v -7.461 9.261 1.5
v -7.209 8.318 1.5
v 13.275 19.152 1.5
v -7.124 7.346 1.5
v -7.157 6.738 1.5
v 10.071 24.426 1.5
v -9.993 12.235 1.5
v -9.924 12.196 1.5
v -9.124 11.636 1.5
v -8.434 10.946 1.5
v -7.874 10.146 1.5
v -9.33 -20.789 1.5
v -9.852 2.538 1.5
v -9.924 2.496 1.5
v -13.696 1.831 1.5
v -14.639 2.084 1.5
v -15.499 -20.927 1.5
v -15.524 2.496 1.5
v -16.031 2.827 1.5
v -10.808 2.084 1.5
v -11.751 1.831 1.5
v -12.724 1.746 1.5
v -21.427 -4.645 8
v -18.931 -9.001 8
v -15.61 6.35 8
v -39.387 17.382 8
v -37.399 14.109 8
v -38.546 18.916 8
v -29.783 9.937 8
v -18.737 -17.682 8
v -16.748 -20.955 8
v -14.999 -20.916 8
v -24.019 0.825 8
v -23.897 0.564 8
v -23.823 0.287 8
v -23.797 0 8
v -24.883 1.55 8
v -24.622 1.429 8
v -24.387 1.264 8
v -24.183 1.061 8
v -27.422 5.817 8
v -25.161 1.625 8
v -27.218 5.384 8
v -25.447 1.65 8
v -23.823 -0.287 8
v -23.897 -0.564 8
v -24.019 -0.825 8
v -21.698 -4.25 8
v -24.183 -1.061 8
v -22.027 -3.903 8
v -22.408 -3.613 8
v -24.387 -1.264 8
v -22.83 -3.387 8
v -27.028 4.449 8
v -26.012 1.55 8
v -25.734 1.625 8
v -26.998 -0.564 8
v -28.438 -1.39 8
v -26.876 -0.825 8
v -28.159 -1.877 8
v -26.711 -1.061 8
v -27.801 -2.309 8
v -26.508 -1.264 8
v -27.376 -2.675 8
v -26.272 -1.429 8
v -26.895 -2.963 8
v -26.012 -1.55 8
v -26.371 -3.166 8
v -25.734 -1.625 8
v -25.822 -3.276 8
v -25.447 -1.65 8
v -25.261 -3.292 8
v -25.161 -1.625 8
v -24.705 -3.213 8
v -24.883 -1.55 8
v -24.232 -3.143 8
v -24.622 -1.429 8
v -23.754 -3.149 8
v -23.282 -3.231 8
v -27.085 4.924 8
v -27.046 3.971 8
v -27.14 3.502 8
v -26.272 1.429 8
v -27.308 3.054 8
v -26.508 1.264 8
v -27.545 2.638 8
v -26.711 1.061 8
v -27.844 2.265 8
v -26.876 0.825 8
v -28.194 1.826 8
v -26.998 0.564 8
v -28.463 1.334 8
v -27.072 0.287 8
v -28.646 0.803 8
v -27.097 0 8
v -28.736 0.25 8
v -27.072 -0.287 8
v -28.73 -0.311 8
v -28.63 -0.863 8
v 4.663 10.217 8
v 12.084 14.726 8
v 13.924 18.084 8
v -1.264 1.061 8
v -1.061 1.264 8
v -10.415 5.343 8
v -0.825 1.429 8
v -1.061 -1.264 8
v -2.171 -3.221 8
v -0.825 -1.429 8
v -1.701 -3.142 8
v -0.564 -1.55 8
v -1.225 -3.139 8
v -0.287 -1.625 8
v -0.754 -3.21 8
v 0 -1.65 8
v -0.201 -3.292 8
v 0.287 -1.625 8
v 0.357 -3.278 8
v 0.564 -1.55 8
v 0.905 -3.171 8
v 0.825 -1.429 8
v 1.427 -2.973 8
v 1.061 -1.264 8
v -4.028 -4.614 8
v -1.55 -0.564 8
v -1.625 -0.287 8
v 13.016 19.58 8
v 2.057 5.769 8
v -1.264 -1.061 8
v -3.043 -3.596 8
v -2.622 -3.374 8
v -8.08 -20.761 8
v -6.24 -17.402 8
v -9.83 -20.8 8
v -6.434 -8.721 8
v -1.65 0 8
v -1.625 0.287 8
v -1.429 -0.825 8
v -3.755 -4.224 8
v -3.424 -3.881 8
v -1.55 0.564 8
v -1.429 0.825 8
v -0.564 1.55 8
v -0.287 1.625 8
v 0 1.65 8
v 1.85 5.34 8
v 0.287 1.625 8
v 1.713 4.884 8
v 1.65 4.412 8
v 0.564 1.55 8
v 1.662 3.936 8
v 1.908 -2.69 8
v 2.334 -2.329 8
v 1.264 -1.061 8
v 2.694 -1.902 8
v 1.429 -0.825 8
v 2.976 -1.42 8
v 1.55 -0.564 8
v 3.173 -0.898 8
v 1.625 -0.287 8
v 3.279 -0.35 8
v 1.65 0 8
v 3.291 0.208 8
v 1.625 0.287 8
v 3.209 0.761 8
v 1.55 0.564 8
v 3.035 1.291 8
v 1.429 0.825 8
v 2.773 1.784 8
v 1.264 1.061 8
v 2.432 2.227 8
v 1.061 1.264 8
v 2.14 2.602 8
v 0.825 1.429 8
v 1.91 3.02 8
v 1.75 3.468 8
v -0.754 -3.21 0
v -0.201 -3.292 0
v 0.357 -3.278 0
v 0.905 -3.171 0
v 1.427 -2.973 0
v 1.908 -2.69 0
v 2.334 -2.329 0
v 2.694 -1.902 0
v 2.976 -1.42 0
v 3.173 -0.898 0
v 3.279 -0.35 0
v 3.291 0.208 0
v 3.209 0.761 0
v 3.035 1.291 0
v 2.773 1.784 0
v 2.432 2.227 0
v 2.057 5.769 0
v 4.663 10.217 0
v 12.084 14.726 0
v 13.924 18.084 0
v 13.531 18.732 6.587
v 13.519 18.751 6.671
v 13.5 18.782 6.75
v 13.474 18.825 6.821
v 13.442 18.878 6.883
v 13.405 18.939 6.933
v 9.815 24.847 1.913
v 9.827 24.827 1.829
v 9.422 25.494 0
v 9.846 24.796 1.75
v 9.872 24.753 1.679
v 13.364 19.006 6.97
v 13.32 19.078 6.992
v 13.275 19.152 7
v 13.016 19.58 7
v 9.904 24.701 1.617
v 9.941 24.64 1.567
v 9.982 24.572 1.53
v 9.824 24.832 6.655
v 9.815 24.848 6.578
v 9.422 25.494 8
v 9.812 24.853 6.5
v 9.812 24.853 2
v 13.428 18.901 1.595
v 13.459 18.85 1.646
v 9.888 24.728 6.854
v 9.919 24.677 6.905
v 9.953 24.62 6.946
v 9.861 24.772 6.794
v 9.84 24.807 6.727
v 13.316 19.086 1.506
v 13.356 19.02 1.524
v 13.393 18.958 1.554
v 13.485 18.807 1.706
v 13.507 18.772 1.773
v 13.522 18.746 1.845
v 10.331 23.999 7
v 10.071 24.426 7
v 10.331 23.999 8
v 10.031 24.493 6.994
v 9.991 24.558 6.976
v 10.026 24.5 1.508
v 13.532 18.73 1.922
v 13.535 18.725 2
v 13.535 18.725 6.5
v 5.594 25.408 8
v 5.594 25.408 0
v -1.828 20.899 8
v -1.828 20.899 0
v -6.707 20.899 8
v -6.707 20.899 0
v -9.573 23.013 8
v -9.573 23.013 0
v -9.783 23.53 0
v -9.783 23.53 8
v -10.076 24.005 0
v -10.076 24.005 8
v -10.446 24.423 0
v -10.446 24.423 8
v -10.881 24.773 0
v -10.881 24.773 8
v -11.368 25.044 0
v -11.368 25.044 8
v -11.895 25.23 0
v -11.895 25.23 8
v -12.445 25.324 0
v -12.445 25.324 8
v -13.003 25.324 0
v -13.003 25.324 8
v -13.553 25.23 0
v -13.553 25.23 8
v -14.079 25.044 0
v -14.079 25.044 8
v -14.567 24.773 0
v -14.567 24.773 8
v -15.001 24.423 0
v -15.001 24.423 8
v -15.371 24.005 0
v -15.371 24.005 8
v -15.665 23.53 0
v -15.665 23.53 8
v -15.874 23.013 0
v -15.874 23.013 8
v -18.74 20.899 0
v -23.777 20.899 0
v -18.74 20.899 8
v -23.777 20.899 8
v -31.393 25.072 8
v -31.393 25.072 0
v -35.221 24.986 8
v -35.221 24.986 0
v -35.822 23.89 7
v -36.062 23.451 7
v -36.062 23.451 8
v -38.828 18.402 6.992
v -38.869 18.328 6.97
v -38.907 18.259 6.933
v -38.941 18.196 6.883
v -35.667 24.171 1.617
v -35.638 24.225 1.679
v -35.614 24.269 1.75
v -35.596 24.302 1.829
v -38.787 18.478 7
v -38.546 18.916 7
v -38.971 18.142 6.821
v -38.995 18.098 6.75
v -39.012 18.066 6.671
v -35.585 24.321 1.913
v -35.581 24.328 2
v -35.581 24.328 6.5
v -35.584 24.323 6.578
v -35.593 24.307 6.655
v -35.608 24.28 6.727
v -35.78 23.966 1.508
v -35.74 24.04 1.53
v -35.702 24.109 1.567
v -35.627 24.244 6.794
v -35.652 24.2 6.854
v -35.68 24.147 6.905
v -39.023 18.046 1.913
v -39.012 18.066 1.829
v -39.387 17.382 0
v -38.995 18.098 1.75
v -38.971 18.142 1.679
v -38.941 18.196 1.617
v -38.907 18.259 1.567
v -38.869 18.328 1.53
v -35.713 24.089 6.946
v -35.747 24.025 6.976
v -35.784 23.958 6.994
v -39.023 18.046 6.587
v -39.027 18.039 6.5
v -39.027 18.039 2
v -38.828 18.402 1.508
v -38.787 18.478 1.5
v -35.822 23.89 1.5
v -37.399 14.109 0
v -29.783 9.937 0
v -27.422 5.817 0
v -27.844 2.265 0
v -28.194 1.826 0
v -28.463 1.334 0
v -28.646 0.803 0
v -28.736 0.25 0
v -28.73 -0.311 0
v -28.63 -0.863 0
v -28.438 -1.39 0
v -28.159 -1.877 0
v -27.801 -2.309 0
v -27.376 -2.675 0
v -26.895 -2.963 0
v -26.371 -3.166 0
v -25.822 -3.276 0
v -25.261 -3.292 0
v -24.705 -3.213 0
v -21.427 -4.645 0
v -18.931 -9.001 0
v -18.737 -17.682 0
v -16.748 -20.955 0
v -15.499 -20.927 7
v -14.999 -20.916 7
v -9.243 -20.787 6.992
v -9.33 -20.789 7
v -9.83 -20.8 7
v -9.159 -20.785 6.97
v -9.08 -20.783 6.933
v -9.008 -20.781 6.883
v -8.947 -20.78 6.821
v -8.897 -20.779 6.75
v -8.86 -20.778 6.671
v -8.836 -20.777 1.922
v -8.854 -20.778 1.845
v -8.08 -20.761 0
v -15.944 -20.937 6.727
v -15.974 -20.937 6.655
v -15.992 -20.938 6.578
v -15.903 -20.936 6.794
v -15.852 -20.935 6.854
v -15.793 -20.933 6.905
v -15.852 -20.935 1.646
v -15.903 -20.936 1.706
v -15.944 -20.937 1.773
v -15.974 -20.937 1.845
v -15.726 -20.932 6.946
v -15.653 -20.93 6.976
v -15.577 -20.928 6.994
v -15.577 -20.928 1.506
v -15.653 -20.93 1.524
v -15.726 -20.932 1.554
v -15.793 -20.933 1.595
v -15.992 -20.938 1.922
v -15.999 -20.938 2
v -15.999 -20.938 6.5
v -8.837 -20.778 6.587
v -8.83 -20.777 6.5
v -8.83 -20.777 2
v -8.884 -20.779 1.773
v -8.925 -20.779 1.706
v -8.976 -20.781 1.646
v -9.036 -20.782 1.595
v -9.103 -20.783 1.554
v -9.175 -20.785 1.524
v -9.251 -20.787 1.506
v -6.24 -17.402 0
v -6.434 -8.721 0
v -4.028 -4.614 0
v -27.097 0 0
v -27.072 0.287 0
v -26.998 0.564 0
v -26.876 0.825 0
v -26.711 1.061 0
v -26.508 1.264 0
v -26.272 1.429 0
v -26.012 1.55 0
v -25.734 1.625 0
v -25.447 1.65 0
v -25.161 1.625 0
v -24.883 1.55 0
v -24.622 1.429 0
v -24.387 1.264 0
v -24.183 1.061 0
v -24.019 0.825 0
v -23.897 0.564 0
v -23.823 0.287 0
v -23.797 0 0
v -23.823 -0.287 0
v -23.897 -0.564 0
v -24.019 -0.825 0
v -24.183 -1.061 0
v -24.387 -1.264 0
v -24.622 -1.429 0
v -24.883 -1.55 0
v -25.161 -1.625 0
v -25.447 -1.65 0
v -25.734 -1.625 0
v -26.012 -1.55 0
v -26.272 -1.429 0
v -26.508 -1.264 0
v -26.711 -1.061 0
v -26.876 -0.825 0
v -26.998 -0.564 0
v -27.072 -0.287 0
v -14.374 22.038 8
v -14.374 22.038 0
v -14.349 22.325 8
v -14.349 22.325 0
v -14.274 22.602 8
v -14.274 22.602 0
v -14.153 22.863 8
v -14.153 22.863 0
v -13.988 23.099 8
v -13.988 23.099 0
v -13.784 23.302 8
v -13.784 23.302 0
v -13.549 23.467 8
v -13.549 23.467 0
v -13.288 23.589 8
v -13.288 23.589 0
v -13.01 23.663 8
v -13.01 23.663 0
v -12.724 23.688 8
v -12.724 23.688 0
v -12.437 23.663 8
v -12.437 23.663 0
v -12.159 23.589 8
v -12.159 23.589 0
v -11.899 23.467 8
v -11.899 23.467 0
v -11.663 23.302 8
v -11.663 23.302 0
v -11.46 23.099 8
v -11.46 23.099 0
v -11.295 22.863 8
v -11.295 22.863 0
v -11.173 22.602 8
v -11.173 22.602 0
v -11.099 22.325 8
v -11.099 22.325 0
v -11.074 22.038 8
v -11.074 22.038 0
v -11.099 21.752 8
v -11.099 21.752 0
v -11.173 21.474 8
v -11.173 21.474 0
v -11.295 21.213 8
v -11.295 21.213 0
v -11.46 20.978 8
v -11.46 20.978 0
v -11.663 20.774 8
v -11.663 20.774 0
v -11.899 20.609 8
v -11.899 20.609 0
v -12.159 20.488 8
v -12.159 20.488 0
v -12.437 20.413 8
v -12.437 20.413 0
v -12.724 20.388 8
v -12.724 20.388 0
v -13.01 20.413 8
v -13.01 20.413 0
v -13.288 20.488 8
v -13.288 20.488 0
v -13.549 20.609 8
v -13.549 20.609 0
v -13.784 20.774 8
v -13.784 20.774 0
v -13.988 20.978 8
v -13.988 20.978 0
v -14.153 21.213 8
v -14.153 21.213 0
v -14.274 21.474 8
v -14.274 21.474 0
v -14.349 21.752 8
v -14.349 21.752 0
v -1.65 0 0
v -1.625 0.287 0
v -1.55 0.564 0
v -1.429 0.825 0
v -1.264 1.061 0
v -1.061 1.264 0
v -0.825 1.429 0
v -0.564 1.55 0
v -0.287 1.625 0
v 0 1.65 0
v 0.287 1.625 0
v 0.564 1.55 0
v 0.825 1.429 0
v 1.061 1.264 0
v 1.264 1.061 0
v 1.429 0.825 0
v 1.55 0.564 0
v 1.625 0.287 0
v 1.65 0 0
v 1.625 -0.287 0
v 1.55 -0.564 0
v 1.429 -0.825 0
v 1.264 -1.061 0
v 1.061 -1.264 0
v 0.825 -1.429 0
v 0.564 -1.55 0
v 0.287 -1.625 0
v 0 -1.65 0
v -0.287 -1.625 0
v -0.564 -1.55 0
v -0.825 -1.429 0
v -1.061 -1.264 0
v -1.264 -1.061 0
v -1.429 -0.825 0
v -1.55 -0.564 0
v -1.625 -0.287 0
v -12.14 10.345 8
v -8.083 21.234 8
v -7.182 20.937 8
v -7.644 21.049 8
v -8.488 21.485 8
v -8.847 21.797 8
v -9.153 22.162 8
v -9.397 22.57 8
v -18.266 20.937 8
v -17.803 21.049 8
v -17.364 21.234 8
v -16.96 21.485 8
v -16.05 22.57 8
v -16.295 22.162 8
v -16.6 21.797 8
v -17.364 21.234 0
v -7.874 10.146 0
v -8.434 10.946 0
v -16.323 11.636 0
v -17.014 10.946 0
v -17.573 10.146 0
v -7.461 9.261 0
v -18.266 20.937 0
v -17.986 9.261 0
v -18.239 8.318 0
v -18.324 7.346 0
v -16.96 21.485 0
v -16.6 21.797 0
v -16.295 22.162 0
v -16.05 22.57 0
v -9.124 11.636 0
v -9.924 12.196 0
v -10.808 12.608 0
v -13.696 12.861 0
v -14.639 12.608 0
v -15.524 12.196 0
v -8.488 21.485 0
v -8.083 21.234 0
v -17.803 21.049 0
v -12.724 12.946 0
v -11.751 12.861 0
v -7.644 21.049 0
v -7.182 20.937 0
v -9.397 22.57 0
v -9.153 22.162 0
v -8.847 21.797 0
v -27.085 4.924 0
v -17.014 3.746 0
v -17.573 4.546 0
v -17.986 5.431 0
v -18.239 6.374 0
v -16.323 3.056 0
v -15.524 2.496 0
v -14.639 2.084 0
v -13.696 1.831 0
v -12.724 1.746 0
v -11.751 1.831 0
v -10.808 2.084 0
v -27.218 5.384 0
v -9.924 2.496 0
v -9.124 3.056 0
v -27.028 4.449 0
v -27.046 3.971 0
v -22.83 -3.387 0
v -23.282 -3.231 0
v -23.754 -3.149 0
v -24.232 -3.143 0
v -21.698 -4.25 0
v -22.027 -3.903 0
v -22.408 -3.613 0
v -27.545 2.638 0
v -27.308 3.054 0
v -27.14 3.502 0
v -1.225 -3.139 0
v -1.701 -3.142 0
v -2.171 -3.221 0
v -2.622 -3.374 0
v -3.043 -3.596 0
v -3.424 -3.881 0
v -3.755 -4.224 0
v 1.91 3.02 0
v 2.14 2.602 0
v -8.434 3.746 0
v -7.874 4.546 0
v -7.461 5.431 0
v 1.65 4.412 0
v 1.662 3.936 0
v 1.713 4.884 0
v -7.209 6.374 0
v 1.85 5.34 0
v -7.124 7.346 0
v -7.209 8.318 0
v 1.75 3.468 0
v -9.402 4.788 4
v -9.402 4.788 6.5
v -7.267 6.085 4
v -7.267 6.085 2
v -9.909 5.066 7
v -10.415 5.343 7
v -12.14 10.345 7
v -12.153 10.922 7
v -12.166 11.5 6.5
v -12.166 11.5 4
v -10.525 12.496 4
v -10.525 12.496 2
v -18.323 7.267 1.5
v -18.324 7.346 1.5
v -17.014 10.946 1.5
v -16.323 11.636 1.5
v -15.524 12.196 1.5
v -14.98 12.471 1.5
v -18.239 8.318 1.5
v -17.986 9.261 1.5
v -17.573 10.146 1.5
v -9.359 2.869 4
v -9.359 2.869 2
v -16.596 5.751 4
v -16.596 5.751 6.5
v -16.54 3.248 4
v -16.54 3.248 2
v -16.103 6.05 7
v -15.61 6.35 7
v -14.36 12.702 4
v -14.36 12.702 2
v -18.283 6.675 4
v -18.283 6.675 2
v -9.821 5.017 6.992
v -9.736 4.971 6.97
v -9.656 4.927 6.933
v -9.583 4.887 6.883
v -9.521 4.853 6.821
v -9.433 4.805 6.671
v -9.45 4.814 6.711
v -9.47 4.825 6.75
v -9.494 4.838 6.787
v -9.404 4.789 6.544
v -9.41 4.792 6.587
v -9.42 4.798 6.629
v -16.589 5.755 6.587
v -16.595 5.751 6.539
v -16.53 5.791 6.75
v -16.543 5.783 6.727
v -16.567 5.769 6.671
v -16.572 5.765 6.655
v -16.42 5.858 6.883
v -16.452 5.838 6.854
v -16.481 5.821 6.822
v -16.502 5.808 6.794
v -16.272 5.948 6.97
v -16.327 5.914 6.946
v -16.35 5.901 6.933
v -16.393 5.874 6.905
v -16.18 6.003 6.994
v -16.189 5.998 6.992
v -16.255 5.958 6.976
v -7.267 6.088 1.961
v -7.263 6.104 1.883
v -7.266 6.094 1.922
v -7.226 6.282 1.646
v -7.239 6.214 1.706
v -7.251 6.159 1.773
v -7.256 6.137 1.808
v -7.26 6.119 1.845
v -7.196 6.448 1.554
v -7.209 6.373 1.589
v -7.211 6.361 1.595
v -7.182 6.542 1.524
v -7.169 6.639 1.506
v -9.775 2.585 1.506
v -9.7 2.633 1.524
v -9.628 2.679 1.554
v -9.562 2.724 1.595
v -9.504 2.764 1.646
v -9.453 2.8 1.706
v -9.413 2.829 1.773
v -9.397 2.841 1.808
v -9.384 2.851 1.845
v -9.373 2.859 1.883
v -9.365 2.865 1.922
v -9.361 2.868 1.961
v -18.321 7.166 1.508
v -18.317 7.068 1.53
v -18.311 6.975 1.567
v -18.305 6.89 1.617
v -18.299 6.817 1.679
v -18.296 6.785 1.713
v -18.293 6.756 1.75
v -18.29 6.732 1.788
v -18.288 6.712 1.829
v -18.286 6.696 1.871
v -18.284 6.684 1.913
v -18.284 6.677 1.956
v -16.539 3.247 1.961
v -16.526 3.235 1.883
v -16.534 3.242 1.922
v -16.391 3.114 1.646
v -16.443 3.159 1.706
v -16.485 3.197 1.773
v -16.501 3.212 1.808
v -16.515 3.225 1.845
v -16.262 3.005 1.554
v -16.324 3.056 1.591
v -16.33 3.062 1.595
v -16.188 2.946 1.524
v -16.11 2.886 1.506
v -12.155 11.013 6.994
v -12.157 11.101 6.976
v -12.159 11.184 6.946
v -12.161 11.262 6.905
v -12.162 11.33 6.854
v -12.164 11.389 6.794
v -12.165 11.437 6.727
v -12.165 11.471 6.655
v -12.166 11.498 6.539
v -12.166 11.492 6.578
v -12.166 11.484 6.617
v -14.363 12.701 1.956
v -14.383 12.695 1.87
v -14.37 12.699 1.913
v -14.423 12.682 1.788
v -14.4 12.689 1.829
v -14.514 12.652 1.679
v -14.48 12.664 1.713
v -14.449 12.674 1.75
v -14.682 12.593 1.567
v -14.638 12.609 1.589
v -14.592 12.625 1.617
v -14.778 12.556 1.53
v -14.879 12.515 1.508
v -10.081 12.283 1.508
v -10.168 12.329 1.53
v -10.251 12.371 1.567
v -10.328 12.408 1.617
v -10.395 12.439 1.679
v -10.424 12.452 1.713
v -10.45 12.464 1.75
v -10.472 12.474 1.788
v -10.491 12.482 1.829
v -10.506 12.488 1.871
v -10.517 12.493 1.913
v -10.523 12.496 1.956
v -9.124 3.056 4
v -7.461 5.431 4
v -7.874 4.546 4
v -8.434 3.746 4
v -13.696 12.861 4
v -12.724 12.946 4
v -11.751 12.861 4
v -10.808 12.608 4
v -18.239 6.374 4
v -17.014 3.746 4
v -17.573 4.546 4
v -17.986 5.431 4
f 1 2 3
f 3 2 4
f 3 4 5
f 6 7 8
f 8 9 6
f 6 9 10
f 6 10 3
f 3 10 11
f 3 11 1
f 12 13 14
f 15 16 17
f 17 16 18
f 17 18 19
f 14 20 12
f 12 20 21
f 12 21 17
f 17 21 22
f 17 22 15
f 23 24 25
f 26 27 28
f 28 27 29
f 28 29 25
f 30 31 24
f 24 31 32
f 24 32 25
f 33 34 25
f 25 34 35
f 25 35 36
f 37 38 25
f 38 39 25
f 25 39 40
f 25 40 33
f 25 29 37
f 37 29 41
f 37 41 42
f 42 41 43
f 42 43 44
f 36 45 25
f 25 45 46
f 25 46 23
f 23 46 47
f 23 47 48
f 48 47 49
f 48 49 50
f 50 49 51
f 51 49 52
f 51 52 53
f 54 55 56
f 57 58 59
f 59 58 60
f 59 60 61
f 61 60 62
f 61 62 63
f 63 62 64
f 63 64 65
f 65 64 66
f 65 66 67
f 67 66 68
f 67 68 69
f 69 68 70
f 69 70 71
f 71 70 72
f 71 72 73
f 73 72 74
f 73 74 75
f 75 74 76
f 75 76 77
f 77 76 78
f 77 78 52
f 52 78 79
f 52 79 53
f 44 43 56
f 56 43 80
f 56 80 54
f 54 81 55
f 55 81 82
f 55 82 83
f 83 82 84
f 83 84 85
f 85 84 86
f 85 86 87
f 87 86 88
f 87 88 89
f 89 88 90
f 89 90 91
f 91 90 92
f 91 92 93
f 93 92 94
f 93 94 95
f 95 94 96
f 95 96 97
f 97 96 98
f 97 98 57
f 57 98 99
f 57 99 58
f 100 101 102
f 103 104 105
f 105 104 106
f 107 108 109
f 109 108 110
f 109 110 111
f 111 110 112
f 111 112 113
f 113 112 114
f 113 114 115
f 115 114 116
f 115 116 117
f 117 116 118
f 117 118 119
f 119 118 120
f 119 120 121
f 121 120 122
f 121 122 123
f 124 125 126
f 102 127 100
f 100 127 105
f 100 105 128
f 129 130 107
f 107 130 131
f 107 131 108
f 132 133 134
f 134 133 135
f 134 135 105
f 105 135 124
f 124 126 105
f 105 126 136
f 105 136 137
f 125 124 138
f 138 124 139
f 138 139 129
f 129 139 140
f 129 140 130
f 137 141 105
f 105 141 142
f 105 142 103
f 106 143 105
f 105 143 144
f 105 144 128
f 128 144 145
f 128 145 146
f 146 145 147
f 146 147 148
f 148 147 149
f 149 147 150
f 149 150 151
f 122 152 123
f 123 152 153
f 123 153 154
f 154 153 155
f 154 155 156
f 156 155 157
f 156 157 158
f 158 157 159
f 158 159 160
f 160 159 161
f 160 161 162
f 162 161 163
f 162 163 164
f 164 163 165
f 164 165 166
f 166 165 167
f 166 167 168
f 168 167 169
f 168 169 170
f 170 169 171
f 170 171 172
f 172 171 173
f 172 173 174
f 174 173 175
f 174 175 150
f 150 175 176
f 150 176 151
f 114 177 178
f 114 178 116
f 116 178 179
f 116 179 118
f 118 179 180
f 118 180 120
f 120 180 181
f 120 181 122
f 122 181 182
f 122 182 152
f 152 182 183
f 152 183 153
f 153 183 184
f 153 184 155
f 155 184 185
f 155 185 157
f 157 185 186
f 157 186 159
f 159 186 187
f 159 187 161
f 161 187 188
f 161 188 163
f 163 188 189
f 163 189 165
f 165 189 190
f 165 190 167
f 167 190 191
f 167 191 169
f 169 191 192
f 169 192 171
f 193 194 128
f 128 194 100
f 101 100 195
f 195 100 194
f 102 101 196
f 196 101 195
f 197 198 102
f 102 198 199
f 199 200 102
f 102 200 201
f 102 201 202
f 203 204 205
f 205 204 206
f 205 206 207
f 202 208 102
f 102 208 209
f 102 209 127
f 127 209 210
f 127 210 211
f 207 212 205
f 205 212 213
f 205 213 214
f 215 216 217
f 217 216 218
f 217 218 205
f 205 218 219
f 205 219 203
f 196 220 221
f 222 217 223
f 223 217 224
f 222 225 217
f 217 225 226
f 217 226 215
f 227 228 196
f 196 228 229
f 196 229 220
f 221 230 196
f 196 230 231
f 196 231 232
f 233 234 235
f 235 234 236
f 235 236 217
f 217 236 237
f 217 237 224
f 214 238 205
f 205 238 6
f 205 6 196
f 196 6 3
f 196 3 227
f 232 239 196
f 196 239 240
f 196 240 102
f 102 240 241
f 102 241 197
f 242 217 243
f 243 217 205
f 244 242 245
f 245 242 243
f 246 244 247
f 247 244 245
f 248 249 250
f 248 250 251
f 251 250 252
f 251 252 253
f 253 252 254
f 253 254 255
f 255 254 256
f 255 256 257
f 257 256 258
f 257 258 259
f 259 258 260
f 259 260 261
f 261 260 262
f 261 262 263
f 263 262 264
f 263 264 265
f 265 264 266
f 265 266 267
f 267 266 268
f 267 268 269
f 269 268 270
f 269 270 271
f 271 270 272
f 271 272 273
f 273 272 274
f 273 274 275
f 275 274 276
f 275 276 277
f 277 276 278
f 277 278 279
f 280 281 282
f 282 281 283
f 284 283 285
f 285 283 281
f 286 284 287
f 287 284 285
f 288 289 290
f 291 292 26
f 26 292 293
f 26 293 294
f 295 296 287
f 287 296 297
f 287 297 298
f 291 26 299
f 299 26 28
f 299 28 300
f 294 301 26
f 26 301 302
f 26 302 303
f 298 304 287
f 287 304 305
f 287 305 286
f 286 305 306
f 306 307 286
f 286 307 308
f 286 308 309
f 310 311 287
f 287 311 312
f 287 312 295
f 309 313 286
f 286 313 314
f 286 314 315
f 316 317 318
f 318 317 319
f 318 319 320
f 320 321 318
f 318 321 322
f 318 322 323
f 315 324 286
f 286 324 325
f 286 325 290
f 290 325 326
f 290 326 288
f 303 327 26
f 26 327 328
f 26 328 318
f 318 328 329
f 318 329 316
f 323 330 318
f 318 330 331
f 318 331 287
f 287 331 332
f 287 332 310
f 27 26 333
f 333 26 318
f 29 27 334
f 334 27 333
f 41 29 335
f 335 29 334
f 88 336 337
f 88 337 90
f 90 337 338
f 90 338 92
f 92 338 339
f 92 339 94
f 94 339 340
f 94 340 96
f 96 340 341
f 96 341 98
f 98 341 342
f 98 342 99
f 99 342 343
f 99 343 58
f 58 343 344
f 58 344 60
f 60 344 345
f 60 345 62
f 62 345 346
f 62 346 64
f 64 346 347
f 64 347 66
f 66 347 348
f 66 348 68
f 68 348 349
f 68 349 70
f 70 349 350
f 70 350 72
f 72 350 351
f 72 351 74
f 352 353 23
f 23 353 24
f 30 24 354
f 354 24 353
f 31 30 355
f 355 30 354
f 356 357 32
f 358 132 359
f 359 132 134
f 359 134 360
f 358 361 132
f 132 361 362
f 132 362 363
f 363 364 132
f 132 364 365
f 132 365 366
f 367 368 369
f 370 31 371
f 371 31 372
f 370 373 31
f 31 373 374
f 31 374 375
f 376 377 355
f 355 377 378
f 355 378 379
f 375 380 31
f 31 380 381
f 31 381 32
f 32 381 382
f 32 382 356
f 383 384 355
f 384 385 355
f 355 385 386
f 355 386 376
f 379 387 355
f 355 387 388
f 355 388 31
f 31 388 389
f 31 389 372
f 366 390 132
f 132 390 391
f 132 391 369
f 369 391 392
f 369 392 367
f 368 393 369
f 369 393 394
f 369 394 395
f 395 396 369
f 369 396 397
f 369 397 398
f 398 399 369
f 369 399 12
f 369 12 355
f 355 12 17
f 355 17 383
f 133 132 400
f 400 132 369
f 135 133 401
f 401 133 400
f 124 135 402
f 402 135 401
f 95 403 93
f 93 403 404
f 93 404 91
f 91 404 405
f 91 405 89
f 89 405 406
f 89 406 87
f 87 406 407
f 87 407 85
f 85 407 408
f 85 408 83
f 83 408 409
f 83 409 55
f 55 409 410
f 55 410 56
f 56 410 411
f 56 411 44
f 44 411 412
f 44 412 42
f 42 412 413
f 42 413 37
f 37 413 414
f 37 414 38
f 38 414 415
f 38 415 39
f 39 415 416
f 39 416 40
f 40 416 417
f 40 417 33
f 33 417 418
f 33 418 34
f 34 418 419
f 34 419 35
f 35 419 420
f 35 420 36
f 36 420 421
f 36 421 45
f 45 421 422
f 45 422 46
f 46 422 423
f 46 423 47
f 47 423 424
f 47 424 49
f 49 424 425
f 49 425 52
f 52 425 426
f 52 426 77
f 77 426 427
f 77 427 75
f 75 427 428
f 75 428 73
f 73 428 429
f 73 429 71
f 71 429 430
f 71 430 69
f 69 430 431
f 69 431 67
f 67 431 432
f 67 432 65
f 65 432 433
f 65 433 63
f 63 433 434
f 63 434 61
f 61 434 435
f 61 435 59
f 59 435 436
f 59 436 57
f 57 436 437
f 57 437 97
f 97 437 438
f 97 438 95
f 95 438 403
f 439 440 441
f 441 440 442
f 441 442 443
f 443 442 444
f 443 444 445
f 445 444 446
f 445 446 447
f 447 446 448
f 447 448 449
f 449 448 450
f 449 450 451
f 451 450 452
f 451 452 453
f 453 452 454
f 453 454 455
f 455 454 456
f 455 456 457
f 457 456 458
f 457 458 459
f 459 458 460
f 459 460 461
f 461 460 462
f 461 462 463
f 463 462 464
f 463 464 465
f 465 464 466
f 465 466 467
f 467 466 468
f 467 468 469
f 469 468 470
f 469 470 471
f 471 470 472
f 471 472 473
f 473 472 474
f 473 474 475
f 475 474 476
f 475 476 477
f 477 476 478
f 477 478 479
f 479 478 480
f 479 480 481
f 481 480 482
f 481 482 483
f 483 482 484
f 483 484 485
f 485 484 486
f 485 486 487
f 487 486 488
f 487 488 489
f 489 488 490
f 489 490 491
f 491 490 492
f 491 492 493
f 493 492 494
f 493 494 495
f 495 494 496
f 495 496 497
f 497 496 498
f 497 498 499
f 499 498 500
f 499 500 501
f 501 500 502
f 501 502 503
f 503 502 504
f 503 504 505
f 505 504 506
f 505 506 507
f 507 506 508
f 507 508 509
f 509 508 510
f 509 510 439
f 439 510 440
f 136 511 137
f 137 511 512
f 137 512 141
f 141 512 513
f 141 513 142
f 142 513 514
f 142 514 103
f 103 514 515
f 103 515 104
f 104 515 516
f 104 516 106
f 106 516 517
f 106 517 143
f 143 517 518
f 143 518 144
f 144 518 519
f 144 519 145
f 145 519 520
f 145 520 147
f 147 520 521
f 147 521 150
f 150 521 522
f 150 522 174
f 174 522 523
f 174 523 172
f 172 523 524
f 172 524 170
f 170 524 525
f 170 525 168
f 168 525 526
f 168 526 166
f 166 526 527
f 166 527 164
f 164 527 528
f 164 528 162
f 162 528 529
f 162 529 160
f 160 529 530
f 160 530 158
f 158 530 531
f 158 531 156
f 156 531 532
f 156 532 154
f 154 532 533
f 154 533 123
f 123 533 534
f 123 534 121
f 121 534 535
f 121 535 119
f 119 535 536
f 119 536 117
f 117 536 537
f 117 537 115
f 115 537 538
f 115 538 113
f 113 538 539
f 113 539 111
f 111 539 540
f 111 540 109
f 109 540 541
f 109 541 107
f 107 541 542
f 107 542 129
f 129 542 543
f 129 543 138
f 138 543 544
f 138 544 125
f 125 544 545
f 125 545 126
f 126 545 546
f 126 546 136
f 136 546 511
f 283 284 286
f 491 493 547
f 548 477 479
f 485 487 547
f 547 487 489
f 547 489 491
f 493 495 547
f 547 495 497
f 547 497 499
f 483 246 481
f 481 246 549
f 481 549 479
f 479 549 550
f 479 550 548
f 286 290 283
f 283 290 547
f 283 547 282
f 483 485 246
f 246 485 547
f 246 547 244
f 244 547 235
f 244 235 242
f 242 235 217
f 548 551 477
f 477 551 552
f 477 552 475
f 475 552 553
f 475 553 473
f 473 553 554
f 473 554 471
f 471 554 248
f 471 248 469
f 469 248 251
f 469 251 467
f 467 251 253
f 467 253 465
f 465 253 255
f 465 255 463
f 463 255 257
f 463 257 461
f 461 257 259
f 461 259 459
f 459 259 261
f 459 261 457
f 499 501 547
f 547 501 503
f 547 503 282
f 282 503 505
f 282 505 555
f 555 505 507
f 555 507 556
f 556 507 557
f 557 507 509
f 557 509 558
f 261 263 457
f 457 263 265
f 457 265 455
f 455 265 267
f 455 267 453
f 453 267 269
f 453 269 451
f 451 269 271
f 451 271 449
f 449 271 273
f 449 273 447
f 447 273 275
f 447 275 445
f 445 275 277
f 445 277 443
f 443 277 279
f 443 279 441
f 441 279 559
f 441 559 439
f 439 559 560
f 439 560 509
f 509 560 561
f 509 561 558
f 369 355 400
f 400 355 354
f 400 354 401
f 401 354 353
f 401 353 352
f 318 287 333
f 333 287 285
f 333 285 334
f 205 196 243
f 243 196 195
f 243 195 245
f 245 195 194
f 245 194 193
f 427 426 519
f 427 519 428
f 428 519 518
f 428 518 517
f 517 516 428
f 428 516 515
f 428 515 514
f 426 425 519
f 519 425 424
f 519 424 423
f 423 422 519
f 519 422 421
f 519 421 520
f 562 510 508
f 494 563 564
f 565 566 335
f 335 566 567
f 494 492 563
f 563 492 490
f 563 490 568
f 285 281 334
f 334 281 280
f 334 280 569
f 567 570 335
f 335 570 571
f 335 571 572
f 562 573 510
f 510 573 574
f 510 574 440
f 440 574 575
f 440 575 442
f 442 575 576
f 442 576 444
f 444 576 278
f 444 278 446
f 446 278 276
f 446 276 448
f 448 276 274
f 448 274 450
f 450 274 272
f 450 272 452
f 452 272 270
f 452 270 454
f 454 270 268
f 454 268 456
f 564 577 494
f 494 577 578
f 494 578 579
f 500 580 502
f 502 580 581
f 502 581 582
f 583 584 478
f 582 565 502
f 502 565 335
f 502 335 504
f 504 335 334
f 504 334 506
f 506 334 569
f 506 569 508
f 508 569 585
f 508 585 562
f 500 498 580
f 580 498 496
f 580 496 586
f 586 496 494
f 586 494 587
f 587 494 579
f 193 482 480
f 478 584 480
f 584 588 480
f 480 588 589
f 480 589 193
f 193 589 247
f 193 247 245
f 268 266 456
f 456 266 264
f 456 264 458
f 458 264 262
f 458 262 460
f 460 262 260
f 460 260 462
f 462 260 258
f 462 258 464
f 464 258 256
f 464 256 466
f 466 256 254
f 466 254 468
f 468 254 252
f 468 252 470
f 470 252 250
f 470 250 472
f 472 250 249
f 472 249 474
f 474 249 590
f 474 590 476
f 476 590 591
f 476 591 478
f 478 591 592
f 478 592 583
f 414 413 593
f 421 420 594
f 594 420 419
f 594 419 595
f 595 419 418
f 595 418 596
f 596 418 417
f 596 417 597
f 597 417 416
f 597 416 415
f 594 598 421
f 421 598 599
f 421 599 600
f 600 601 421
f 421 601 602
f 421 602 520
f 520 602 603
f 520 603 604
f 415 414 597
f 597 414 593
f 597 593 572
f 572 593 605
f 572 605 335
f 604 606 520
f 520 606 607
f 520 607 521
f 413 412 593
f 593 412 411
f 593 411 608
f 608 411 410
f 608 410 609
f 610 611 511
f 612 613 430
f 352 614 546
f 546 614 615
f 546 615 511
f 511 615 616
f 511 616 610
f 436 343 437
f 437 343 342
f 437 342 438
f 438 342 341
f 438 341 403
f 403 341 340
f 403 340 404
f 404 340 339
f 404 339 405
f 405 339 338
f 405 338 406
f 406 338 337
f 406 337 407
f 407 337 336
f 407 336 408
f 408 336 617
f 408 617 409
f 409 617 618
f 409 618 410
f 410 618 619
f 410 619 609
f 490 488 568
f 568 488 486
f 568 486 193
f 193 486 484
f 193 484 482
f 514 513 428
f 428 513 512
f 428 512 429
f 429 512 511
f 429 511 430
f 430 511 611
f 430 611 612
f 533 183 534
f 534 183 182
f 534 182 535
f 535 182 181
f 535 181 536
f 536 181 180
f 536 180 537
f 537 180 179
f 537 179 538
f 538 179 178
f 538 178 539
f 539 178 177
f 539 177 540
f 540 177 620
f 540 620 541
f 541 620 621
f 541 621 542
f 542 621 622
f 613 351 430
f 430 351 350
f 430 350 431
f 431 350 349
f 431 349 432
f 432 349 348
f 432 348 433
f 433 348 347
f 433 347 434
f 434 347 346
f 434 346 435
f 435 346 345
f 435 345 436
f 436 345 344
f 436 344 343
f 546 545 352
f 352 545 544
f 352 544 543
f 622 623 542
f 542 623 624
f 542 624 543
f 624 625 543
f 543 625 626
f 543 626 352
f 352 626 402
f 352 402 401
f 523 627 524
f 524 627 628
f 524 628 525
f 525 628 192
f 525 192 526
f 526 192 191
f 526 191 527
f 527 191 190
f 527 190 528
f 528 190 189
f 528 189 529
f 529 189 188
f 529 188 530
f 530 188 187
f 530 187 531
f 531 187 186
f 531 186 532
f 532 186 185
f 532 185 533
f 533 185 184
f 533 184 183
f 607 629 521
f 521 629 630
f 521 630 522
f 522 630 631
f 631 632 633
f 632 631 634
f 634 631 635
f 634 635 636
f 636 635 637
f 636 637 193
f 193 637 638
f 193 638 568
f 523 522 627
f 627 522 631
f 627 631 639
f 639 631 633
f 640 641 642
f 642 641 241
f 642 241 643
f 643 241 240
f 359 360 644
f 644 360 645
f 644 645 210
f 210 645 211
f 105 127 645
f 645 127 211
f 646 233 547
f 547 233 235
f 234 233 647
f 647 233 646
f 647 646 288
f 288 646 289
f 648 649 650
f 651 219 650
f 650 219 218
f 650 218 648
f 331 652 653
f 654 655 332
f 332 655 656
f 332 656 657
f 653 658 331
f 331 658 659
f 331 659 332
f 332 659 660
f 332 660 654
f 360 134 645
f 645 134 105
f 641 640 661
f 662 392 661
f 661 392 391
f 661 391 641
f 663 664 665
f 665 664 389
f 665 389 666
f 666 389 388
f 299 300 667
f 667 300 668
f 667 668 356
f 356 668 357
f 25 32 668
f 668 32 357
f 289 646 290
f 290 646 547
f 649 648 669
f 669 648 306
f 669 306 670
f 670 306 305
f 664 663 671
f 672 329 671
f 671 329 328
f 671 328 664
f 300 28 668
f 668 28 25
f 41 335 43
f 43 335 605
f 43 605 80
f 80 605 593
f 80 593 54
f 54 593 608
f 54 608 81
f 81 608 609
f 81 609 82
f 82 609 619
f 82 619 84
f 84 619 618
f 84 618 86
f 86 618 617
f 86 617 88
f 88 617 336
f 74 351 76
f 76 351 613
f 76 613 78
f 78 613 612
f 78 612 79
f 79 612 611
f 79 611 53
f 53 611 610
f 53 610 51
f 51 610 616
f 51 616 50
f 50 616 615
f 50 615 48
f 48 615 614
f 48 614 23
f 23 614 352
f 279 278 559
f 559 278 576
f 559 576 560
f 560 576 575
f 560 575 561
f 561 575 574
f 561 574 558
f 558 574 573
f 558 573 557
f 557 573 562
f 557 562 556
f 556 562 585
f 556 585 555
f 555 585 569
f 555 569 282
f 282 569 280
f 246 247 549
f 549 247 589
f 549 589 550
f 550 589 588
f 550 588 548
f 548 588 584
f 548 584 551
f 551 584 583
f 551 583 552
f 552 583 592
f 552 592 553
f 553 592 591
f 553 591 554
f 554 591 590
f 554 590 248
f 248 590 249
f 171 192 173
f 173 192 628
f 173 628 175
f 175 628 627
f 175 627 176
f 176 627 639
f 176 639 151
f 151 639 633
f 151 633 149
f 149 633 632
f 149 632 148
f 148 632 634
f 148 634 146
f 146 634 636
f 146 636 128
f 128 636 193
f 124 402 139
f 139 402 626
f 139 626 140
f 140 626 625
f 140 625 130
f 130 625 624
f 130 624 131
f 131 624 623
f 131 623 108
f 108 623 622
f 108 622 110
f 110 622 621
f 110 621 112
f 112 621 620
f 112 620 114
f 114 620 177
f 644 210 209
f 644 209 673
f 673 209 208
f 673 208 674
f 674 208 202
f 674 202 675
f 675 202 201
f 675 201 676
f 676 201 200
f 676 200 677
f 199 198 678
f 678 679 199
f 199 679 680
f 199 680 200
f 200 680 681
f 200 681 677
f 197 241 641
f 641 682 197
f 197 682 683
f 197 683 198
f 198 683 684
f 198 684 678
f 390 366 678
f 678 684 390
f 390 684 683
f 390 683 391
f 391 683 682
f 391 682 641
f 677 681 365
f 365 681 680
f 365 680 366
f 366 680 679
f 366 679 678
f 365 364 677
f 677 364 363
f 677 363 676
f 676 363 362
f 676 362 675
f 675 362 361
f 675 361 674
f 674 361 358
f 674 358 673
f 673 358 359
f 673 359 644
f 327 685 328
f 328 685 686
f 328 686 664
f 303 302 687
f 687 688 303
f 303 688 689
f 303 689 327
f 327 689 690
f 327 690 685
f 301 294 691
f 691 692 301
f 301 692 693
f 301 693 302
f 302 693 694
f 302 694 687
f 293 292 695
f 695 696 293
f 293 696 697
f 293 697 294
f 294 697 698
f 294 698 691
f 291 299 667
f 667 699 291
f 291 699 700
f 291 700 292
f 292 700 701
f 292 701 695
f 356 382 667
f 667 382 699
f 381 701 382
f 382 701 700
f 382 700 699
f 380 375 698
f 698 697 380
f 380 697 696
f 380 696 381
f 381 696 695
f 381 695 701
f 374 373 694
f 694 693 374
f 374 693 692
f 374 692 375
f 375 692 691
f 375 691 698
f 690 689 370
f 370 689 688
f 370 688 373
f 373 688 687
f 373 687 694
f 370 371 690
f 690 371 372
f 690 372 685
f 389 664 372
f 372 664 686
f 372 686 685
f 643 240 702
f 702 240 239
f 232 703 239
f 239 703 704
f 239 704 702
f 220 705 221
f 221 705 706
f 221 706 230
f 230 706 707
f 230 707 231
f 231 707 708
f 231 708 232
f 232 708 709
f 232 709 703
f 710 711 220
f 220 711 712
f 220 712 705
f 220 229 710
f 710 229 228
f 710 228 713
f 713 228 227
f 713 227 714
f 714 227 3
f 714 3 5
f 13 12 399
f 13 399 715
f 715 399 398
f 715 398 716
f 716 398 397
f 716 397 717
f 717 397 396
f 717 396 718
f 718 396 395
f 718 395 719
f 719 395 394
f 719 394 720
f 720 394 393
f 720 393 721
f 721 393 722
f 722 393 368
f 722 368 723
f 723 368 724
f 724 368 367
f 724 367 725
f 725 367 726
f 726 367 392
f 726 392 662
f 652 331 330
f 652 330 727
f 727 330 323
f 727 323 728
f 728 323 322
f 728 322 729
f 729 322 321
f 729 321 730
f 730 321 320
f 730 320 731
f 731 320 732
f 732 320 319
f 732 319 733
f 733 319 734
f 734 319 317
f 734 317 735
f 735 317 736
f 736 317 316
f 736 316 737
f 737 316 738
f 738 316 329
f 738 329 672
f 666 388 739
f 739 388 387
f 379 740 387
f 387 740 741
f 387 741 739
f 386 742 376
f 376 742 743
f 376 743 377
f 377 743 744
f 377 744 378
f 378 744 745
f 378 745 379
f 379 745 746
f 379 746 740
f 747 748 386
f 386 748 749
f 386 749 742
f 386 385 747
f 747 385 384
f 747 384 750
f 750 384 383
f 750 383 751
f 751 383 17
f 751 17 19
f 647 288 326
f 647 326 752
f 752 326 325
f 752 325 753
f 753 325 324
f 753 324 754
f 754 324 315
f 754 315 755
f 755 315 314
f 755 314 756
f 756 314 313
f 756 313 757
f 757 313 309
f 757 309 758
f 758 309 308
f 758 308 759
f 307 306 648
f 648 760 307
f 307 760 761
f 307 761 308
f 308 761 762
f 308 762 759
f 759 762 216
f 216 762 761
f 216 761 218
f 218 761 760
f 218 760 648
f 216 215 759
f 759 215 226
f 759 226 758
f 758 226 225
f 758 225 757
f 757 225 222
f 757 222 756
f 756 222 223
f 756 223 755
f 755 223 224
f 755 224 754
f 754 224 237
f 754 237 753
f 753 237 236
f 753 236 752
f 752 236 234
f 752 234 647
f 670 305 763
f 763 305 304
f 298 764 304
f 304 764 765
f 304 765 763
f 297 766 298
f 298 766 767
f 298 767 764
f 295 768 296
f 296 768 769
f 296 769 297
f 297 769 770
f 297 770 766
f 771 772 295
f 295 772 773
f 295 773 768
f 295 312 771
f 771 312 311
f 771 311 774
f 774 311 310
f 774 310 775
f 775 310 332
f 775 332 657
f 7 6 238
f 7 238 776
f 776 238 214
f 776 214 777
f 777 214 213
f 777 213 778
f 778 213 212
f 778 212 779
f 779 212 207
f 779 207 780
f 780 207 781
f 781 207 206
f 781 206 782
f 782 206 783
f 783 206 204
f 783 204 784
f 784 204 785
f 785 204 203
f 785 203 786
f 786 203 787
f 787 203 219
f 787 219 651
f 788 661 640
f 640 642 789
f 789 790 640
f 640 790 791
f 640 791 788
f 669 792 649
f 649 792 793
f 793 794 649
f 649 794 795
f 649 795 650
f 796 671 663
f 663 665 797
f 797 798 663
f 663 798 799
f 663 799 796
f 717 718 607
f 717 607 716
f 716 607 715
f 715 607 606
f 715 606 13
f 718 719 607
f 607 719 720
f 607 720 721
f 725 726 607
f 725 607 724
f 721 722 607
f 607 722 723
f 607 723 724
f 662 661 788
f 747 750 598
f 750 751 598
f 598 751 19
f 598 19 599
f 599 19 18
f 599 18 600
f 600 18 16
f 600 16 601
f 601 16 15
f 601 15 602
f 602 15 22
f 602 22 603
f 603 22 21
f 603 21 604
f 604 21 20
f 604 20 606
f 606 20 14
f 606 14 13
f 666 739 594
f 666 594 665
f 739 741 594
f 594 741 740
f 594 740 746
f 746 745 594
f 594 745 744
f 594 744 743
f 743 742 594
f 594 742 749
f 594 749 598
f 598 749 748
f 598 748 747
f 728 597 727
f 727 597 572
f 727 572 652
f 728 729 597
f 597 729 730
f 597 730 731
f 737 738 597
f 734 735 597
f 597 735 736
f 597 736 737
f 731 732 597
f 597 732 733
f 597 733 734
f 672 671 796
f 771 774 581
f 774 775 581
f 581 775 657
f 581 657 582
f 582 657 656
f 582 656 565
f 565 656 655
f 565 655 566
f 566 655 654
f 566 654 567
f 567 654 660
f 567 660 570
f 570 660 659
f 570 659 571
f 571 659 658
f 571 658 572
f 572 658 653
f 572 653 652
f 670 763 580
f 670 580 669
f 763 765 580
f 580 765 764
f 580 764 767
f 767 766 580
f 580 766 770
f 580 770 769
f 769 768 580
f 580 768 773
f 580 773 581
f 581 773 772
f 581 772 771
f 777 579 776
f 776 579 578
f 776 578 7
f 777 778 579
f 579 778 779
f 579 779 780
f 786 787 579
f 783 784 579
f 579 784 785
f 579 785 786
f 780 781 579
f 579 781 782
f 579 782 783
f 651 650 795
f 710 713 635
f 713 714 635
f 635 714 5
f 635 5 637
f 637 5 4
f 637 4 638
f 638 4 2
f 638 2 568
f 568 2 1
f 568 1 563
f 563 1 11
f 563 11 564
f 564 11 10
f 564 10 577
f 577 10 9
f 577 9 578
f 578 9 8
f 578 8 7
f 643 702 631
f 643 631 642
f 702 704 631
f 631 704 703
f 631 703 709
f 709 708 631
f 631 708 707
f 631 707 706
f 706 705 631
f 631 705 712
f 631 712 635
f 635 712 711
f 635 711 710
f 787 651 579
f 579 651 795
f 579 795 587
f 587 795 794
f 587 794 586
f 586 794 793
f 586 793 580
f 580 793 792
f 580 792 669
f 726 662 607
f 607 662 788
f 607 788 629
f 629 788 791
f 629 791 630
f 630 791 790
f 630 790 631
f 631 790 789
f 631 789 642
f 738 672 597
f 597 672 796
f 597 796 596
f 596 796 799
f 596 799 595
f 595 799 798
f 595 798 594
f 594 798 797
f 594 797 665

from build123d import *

# Parameters (mm, degrees)
SKETCH1_R                        = 1.65
SKETCH1_R_2                      = 2.565
BOSS_EXTRUDE2_DEPTH              = 8
CUT_EXTRUDE1_REACH               = 80.832
CUT_EXTRUDE1_OFFSET_FROM_SURFACE = 13
CUT_EXTRUDE2_REACH               = 61.944
CUT_EXTRUDE2_OFFSET_FROM_SURFACE = 13
CUT_EXTRUDE3_REACH               = 80.174
CUT_EXTRUDE3_OFFSET_FROM_SURFACE = 13
FILLET1_R                        = 3
FILLET2_R                        = 0.5
SKETCH5_R                        = 5.6
CUT_EXTRUDE4_DEPTH               = 4


with BuildPart() as part:
    # Sketch1 → Boss-Extrude2 (new body)
    with BuildSketch(Plane.XY):
        with BuildLine():
            Line((-15.818539514, 20.899253914), (-23.777051469, 20.899253914))
            Line((-23.777051469, 20.899253914), (-31.392628778, 25.071578724))
            Line((-31.392628778, 25.071578724), (-35.221090626, 24.985827798))
            Line((-35.221090626, 24.985827798), (-39.387147416, 17.381691254))
            Line((-39.387147416, 17.381691254), (-37.398654012, 14.109021499))
            Line((-37.398654012, 14.109021499), (-29.783076702, 9.93669669))
            Line((-29.783076702, 9.93669669), (-25.956088039, 3.258254515))
            ThreePointArc((-25.956088039, 3.258254515), (-28.308678707, -1.639592518), (-22.893505274, -2.086230066))
            Line((-22.893505274, -2.086230066), (-18.931323152, -9.000597084))
            Line((-18.931323152, -9.000597084), (-18.736873775, -17.682042904))
            Line((-18.736873775, -17.682042904), (-16.748380371, -20.954712658))
            Line((-16.748380371, -20.954712658), (-8.079976555, -20.7605554))
            Line((-8.079976555, -20.7605554), (-6.240008112, -17.402134719))
            Line((-6.240008112, -17.402134719), (-6.434457489, -8.7206889))
            Line((-6.434457489, -8.7206889), (-2.549592829, -2.09153546))
            ThreePointArc((-2.549592829, -2.09153546), (2.845157596, -1.667339925), (0.578670581, 3.246549635))
            Line((0.578670581, 3.246549635), (4.66331299, 10.216604874))
            Line((4.66331299, 10.216604874), (12.084440923, 14.725725884))
            Line((12.084440923, 14.725725884), (13.924409366, 18.084146564))
            Line((13.924409366, 18.084146564), (9.42206234, 25.49412585))
            Line((9.42206234, 25.49412585), (5.593600493, 25.408374924))
            Line((5.593600493, 25.408374924), (-1.82752744, 20.899253914))
            Line((-1.82752744, 20.899253914), (-9.628901603, 20.899253914))
            ThreePointArc((-9.628901603, 20.899253914), (-12.723720558, 25.335848494), (-15.818539514, 20.899253914))
        make_face()
        Circle(SKETCH1_R, mode=Mode.SUBTRACT)
        with Locations((-25.447441117, 0)):
            Circle(SKETCH1_R, mode=Mode.SUBTRACT)
        with Locations((-12.723720558, 22.038130468)):
            Circle(SKETCH1_R, mode=Mode.SUBTRACT)
        with Locations((-12.723720558, 7.346043489)):
            Circle(SKETCH1_R_2, mode=Mode.SUBTRACT)
    extrude(amount=BOSS_EXTRUDE2_DEPTH)

    # Cut-Extrude1: up to this face of the body (flat: up to its plane, moved by the offset)
    cut_extrude1_end = Plane(part.part.faces().sort_by_distance((-27.869582371, 6.597475602, 4))[0]).offset(-CUT_EXTRUDE1_OFFSET_FROM_SURFACE)
    # Sketch2 → Cut-Extrude1 (cut, up to the picked face)
    with BuildSketch(Plane(origin=(18.195090402, 11.055444017, 0), x_dir=(0, 0, -1), z_dir=(0.854611923, 0.519267234, 0)), mode=Mode.PRIVATE) as cut_extrude1_sk1:
        Polygon((-1.5, 8.974437732), (-1.5, 16.145015669), (-7, 16.145015669), (-7, 15.145015669), (-8, 15.145015669), (-8, 9.974437732), (-7, 9.974437732), (-7, 8.974437732), align=None)
    cut_extrude1_tool1 = split(extrude(cut_extrude1_sk1.sketch, amount=-CUT_EXTRUDE1_REACH, mode=Mode.PRIVATE), bisect_by=cut_extrude1_end, keep=Keep.BOTH, mode=Mode.PRIVATE)
    add(cut_extrude1_tool1.solids().sort_by_distance((11.673236, 21.789136, 4.626706))[0], mode=Mode.SUBTRACT)

    # Cut-Extrude2: up to this face of the body (flat: up to its plane, moved by the offset)
    cut_extrude2_end = Plane(part.part.faces().sort_by_distance((-5.728214521, 20.899253914, 4))[0]).offset(-CUT_EXTRUDE2_OFFSET_FROM_SURFACE)
    # Sketch3 → Cut-Extrude2 (cut, up to the picked face)
    with BuildSketch(Plane(origin=(0.460715831, -20.569258657, 0), x_dir=(0.999749253, 0.022392655, 0), z_dir=(0.022392655, -0.999749253, 0)), mode=Mode.PRIVATE) as cut_extrude2_sk1:
        Polygon((-16.463412412, 1.5), (-9.292834476, 1.5), (-9.292834476, 7), (-10.292834476, 7), (-10.292834476, 8), (-15.463412412, 8), (-15.463412412, 7), (-16.463412412, 7), align=None)
    cut_extrude2_tool1 = split(extrude(cut_extrude2_sk1.sketch, amount=-CUT_EXTRUDE2_REACH, mode=Mode.PRIVATE), bisect_by=cut_extrude2_end, keep=Keep.BOTH, mode=Mode.PRIVATE)
    add(cut_extrude2_tool1.solids().sort_by_distance((-12.414178, -20.857634, 4.626706))[0], mode=Mode.SUBTRACT)

    # Cut-Extrude3: up to this face of the body (flat: up to its plane, moved by the offset)
    cut_extrude3_end = Plane(part.part.faces().sort_by_distance((2.620991785, 6.731577255, 4))[0]).offset(-CUT_EXTRUDE3_OFFSET_FROM_SURFACE)
    # Sketch4 → Cut-Extrude3 (cut, up to the picked face)
    with BuildSketch(Plane(origin=(-37.618496326, 20.609939227, 0), x_dir=(0, 0, 1), z_dir=(-0.877004578, 0.480482019, 0)), mode=Mode.PRIVATE) as cut_extrude3_sk1:
        Polygon((1.5, 4.23958464), (1.5, -2.930993297), (7, -2.930993297), (7, -1.930993297), (8, -1.930993297), (8, 3.23958464), (7, 3.23958464), (7, 4.23958464), align=None)
    cut_extrude3_tool1 = split(extrude(cut_extrude3_sk1.sketch, amount=-CUT_EXTRUDE3_REACH, mode=Mode.PRIVATE), bisect_by=cut_extrude3_end, keep=Keep.BOTH, mode=Mode.PRIVATE)
    add(cut_extrude3_tool1.solids().sort_by_distance((-37.304119, 21.18376, 4.626706))[0], mode=Mode.SUBTRACT)

    # Fillet1
    fillet1_edges = [part.edges().sort_by_distance(p)[0] for p in [
        (-2.549592829, -2.09153546, 4),
        (-22.893505274, -2.086230066, 4),
        (-25.956088039, 3.258254515, 4),
        (-15.818539514, 20.899253914, 4),
        (-9.628901603, 20.899253914, 4),
        (0.578670581, 3.246549635, 4),
    ]]
    fillet(fillet1_edges, radius=FILLET1_R)

    # Fillet2
    fillet2_edges = [part.edges().sort_by_distance(p)[0] for p in [
        (2.066272904, 11.756664371, 1.5),
        (2.066272904, 11.756664371, 7),
        (-9.116100814, -7.994563327, 7),
        (-9.116100814, -7.994563327, 1.5),
        (-16.297456112, -7.593688192, 7),
        (-16.297456112, -7.593688192, 1.5),
        (-1.177236693, 18.176338061, 1.5),
        (-1.177236693, 18.176338061, 7),
        (-23.873719146, 17.913791789, 7),
        (-23.873719146, 17.913791789, 1.5),
        (-27.811564847, 11.894993235, 7),
        (-27.811564847, 11.894993235, 1.5),
    ]]
    fillet(fillet2_edges, radius=FILLET2_R)

    # Sketch5 → Cut-Extrude4 (cut)
    with BuildSketch(Plane(origin=(0, 0, 0), x_dir=(-1, 0, 0), z_dir=(0, 0, -1))):
        with Locations((12.723720558, 7.346043489)):
            Circle(SKETCH5_R)
    extrude(amount=-CUT_EXTRUDE4_DEPTH, mode=Mode.SUBTRACT)


solid = part.part
